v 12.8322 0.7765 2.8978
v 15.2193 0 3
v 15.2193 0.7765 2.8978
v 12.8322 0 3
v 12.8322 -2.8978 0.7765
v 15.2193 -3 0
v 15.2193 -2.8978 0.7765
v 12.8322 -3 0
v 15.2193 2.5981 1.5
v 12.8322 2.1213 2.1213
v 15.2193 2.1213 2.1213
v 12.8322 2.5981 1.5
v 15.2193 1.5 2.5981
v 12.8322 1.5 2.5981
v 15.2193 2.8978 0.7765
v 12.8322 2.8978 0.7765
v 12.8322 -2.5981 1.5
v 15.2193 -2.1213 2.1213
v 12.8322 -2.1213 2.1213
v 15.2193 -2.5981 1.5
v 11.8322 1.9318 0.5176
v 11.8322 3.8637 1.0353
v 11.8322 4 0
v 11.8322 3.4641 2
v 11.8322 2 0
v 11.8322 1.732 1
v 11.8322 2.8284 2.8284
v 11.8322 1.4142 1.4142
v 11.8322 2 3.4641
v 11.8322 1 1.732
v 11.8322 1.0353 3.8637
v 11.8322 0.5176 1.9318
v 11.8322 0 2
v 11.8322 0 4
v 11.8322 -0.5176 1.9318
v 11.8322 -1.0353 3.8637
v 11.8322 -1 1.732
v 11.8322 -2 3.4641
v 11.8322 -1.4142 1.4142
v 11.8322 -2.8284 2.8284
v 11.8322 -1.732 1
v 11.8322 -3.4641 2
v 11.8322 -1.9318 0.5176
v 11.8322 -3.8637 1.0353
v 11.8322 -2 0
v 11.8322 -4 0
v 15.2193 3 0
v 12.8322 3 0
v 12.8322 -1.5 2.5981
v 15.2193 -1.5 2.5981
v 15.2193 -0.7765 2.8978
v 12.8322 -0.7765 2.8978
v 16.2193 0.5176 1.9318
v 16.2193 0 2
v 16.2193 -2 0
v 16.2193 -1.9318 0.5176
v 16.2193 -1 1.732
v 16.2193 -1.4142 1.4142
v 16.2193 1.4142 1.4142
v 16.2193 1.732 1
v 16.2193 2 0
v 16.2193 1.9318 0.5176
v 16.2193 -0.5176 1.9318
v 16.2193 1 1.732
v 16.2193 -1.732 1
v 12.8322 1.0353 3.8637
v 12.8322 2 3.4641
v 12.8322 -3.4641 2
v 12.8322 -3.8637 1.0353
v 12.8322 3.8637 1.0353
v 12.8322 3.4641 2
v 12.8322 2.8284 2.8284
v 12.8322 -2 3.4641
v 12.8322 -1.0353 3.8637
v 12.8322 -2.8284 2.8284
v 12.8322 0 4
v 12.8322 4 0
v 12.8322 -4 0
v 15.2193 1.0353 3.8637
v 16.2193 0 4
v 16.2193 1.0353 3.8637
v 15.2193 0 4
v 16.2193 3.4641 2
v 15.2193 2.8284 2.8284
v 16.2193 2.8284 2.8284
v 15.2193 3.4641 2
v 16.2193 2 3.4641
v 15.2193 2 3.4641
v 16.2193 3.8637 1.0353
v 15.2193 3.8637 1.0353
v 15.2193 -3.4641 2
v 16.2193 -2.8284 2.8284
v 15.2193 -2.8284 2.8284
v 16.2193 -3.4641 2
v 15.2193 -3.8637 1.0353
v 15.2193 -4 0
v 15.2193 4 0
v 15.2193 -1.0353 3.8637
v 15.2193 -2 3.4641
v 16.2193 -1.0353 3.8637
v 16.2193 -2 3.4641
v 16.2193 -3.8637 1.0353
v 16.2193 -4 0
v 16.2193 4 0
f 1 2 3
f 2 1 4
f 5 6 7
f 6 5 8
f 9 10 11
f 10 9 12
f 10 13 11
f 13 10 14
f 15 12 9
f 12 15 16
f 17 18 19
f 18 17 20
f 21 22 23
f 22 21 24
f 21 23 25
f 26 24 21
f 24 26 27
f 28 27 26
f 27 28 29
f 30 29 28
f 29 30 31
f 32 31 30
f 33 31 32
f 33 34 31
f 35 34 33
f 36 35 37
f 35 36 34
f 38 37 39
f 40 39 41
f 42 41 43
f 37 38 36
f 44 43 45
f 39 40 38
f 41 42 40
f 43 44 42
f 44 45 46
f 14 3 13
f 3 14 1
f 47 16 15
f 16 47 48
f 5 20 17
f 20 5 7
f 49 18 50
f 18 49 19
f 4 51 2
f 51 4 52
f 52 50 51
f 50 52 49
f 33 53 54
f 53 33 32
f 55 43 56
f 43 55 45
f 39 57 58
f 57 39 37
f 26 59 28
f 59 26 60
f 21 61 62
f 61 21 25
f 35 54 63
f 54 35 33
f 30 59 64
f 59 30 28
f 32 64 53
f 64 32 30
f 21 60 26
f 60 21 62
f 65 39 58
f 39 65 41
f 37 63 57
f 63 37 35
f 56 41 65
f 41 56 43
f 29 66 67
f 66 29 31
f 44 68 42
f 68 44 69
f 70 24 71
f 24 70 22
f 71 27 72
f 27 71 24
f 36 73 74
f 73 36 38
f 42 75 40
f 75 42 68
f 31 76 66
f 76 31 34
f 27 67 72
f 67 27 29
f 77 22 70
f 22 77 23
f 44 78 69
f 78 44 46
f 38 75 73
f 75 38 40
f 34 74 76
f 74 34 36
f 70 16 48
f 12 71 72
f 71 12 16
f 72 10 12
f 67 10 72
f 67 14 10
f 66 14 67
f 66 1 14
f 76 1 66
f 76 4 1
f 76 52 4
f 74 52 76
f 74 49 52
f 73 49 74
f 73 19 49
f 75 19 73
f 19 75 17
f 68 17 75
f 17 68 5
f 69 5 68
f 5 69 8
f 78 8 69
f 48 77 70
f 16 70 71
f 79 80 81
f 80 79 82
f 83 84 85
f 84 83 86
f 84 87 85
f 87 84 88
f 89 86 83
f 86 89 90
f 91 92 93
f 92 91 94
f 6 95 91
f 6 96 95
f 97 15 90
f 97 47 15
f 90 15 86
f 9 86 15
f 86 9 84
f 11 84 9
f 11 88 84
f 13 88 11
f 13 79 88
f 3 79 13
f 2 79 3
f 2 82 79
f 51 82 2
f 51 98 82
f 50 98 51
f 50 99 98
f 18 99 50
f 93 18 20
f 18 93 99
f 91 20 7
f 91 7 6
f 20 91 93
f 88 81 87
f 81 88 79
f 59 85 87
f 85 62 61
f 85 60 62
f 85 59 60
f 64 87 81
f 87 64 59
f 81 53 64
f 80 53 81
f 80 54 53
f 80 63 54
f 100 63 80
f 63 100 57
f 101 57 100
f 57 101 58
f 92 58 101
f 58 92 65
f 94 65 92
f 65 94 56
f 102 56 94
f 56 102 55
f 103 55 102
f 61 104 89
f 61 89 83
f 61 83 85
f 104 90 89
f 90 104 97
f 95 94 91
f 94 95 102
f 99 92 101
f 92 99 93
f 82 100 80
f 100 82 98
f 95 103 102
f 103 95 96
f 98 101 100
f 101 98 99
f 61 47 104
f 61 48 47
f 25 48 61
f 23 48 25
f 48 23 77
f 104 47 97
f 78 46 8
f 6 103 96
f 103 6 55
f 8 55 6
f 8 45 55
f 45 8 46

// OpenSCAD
// file: ../build_environments.scad
// build_environments.scad: modules to build level sections
//

module pool(diameter=10.0, wall_height=2.0, step_width=3.0, connections=[])
{
    difference() {
        union() {
        difference() {
            cylinder(h=0.5,r1=diameter+step_width,r2=diameter+step_width,$fn=48);
            translate([0,0,-0.1])
                cylinder(h=0.7,r1=diameter,r2=diameter,$fn=48);
        }
        difference() {
            cylinder(h=wall_height,r1=diameter+step_width+1.0,r2=diameter+step_width+1.0,$fn=48);
            translate([0,0,-0.1])
                cylinder(h=wall_height+0.2,r1=diameter+step_width,r2=diameter+step_width,$fn=48);
        }
        }
    
        for (c = connections)
        {
            rotate([0,90,0]) {
                angle = atan2(c[1],c[0]);
                rotate([-angle,0,0]) {
                    cylinder(h=diameter+5.0,r1=c[2],r2=c[2],$fn=48);
                }
            }
        }
    }
}

module straight(length=10.0, width=2.0, dy1=0.0, dy2=0.0, dz=0.0)
{
    dims = [0, 0, 0, 0, 0, (dz/length)];
    matrix = [
        [ 1, dims[0], dims[1], 0 ],
        [ dims[2], 1, dims[4], 0 ],
        [ dims[5], dims[3], 1, 0 ],
        [ 0, 0, 0, 1 ]
    ];
    multmatrix(matrix)
    difference() {
        translate([dy1,0,0])
        union() {
            rotate([0,90,0]) {
                difference() {
                    cylinder(h=(length-dy1-dy2),r1=width+1.0,r2=width+1.0,$fn=24);
                    translate([0,0,-0.1])
                        cylinder(h=(length-dy1-dy2+0.2),r1=width,r2=width,$fn=24);
                }
                difference() {
                    cylinder(h=1.0,r1=width+2.0,r2=width+2.0,$fn=24);
                    translate([0,0,-0.1])
                        cylinder(h=1.2,r1=width,r2=width,$fn=24);
                }
                translate([0,0,(length-dy1-dy2)-1.0]) {
                    difference() {
                        cylinder(h=1.0,r1=width+2.0,r2=width+2.0,$fn=24);
                        translate([0,0,-0.1])
                            cylinder(h=1.2,r1=width,r2=width,$fn=24);
                    }
                }
            }
        }
        translate([0,0,-(2*width+4.0)/2])
            cube([3*length,3*length,2*width+4.0],center=true);
    }
}

module curve(p0=[0,0], center=[0,0], dir=1, angle=0.0, width=2.0)
{
    radius = sqrt((p0[0]-center[0])*(p0[0]-center[0]) + (p0[1]-center[1])*(p0[1]-center[1]));
    if (dir == 0) {
        difference() {
            rotate([0,0,-90])
            difference() {
                rotate_extrude(angle = angle, convexity = 10, $fn=32)
                    translate([radius, 0, 0])
                        circle(r = width+1.0,$fn=24);
                rotate([0,0,-1.0])
                    rotate_extrude(angle = angle+2.0, convexity = 10, $fn=32)
                        translate([radius, 0, 0])
                            circle(r = width,$fn=24);
            }
            translate([0,0,-(2*width+4.0)/2])
                cube([5*radius,5*radius,2*width+4.0],center=true);
        }
    }
    else {
        difference() {
            rotate([0,0,90])
            difference() {
                rotate_extrude(angle = -angle, convexity = 10, $fn=32)
                    translate([radius, 0, 0])
                        circle(r = width+1.0,$fn=24);
                rotate([0,0,1.0])
                    rotate_extrude(angle = -angle-2.0, convexity = 10, $fn=32)
                        translate([radius, 0, 0])
                            circle(r = width,$fn=24);
            }
            translate([0,0,-(2*width+4.0)/2])
                cube([5*radius,5*radius,2*width+4.0],center=true);
        }
    }

}

// test pool
//pool(diameter=12.0000, wall_height=3.0000, step_width=3.0000, connections=[[0.0000,-26.0000,2.0000], [23.6074,0.0000,2.0000]]);

// test straight, slope
//straight(length=26.0000, width=2.0000, dy1=11.8322, dy2=6.7082, dz=0.0000);
//straight(length=29.1549, width=12.0000, dy1=0.0000, dy2=0.0000, dz=-15.0000);

// test curve
//curve(p0=[23.6074, 0.0000], center=[23.6074, 5.0000], dir=0, angle=60.1011, width=2.0000);
//curve(p0=[33.6426, 12.4219], center=[37.9771, 9.9295], dir=1, angle=120.4627, width=2.0000);
// main file
use <../build_environments.scad>;
straight(length=16.2193, width=2.0000, dy1=11.8322, dy2=0.0000, dz=0.0000);
